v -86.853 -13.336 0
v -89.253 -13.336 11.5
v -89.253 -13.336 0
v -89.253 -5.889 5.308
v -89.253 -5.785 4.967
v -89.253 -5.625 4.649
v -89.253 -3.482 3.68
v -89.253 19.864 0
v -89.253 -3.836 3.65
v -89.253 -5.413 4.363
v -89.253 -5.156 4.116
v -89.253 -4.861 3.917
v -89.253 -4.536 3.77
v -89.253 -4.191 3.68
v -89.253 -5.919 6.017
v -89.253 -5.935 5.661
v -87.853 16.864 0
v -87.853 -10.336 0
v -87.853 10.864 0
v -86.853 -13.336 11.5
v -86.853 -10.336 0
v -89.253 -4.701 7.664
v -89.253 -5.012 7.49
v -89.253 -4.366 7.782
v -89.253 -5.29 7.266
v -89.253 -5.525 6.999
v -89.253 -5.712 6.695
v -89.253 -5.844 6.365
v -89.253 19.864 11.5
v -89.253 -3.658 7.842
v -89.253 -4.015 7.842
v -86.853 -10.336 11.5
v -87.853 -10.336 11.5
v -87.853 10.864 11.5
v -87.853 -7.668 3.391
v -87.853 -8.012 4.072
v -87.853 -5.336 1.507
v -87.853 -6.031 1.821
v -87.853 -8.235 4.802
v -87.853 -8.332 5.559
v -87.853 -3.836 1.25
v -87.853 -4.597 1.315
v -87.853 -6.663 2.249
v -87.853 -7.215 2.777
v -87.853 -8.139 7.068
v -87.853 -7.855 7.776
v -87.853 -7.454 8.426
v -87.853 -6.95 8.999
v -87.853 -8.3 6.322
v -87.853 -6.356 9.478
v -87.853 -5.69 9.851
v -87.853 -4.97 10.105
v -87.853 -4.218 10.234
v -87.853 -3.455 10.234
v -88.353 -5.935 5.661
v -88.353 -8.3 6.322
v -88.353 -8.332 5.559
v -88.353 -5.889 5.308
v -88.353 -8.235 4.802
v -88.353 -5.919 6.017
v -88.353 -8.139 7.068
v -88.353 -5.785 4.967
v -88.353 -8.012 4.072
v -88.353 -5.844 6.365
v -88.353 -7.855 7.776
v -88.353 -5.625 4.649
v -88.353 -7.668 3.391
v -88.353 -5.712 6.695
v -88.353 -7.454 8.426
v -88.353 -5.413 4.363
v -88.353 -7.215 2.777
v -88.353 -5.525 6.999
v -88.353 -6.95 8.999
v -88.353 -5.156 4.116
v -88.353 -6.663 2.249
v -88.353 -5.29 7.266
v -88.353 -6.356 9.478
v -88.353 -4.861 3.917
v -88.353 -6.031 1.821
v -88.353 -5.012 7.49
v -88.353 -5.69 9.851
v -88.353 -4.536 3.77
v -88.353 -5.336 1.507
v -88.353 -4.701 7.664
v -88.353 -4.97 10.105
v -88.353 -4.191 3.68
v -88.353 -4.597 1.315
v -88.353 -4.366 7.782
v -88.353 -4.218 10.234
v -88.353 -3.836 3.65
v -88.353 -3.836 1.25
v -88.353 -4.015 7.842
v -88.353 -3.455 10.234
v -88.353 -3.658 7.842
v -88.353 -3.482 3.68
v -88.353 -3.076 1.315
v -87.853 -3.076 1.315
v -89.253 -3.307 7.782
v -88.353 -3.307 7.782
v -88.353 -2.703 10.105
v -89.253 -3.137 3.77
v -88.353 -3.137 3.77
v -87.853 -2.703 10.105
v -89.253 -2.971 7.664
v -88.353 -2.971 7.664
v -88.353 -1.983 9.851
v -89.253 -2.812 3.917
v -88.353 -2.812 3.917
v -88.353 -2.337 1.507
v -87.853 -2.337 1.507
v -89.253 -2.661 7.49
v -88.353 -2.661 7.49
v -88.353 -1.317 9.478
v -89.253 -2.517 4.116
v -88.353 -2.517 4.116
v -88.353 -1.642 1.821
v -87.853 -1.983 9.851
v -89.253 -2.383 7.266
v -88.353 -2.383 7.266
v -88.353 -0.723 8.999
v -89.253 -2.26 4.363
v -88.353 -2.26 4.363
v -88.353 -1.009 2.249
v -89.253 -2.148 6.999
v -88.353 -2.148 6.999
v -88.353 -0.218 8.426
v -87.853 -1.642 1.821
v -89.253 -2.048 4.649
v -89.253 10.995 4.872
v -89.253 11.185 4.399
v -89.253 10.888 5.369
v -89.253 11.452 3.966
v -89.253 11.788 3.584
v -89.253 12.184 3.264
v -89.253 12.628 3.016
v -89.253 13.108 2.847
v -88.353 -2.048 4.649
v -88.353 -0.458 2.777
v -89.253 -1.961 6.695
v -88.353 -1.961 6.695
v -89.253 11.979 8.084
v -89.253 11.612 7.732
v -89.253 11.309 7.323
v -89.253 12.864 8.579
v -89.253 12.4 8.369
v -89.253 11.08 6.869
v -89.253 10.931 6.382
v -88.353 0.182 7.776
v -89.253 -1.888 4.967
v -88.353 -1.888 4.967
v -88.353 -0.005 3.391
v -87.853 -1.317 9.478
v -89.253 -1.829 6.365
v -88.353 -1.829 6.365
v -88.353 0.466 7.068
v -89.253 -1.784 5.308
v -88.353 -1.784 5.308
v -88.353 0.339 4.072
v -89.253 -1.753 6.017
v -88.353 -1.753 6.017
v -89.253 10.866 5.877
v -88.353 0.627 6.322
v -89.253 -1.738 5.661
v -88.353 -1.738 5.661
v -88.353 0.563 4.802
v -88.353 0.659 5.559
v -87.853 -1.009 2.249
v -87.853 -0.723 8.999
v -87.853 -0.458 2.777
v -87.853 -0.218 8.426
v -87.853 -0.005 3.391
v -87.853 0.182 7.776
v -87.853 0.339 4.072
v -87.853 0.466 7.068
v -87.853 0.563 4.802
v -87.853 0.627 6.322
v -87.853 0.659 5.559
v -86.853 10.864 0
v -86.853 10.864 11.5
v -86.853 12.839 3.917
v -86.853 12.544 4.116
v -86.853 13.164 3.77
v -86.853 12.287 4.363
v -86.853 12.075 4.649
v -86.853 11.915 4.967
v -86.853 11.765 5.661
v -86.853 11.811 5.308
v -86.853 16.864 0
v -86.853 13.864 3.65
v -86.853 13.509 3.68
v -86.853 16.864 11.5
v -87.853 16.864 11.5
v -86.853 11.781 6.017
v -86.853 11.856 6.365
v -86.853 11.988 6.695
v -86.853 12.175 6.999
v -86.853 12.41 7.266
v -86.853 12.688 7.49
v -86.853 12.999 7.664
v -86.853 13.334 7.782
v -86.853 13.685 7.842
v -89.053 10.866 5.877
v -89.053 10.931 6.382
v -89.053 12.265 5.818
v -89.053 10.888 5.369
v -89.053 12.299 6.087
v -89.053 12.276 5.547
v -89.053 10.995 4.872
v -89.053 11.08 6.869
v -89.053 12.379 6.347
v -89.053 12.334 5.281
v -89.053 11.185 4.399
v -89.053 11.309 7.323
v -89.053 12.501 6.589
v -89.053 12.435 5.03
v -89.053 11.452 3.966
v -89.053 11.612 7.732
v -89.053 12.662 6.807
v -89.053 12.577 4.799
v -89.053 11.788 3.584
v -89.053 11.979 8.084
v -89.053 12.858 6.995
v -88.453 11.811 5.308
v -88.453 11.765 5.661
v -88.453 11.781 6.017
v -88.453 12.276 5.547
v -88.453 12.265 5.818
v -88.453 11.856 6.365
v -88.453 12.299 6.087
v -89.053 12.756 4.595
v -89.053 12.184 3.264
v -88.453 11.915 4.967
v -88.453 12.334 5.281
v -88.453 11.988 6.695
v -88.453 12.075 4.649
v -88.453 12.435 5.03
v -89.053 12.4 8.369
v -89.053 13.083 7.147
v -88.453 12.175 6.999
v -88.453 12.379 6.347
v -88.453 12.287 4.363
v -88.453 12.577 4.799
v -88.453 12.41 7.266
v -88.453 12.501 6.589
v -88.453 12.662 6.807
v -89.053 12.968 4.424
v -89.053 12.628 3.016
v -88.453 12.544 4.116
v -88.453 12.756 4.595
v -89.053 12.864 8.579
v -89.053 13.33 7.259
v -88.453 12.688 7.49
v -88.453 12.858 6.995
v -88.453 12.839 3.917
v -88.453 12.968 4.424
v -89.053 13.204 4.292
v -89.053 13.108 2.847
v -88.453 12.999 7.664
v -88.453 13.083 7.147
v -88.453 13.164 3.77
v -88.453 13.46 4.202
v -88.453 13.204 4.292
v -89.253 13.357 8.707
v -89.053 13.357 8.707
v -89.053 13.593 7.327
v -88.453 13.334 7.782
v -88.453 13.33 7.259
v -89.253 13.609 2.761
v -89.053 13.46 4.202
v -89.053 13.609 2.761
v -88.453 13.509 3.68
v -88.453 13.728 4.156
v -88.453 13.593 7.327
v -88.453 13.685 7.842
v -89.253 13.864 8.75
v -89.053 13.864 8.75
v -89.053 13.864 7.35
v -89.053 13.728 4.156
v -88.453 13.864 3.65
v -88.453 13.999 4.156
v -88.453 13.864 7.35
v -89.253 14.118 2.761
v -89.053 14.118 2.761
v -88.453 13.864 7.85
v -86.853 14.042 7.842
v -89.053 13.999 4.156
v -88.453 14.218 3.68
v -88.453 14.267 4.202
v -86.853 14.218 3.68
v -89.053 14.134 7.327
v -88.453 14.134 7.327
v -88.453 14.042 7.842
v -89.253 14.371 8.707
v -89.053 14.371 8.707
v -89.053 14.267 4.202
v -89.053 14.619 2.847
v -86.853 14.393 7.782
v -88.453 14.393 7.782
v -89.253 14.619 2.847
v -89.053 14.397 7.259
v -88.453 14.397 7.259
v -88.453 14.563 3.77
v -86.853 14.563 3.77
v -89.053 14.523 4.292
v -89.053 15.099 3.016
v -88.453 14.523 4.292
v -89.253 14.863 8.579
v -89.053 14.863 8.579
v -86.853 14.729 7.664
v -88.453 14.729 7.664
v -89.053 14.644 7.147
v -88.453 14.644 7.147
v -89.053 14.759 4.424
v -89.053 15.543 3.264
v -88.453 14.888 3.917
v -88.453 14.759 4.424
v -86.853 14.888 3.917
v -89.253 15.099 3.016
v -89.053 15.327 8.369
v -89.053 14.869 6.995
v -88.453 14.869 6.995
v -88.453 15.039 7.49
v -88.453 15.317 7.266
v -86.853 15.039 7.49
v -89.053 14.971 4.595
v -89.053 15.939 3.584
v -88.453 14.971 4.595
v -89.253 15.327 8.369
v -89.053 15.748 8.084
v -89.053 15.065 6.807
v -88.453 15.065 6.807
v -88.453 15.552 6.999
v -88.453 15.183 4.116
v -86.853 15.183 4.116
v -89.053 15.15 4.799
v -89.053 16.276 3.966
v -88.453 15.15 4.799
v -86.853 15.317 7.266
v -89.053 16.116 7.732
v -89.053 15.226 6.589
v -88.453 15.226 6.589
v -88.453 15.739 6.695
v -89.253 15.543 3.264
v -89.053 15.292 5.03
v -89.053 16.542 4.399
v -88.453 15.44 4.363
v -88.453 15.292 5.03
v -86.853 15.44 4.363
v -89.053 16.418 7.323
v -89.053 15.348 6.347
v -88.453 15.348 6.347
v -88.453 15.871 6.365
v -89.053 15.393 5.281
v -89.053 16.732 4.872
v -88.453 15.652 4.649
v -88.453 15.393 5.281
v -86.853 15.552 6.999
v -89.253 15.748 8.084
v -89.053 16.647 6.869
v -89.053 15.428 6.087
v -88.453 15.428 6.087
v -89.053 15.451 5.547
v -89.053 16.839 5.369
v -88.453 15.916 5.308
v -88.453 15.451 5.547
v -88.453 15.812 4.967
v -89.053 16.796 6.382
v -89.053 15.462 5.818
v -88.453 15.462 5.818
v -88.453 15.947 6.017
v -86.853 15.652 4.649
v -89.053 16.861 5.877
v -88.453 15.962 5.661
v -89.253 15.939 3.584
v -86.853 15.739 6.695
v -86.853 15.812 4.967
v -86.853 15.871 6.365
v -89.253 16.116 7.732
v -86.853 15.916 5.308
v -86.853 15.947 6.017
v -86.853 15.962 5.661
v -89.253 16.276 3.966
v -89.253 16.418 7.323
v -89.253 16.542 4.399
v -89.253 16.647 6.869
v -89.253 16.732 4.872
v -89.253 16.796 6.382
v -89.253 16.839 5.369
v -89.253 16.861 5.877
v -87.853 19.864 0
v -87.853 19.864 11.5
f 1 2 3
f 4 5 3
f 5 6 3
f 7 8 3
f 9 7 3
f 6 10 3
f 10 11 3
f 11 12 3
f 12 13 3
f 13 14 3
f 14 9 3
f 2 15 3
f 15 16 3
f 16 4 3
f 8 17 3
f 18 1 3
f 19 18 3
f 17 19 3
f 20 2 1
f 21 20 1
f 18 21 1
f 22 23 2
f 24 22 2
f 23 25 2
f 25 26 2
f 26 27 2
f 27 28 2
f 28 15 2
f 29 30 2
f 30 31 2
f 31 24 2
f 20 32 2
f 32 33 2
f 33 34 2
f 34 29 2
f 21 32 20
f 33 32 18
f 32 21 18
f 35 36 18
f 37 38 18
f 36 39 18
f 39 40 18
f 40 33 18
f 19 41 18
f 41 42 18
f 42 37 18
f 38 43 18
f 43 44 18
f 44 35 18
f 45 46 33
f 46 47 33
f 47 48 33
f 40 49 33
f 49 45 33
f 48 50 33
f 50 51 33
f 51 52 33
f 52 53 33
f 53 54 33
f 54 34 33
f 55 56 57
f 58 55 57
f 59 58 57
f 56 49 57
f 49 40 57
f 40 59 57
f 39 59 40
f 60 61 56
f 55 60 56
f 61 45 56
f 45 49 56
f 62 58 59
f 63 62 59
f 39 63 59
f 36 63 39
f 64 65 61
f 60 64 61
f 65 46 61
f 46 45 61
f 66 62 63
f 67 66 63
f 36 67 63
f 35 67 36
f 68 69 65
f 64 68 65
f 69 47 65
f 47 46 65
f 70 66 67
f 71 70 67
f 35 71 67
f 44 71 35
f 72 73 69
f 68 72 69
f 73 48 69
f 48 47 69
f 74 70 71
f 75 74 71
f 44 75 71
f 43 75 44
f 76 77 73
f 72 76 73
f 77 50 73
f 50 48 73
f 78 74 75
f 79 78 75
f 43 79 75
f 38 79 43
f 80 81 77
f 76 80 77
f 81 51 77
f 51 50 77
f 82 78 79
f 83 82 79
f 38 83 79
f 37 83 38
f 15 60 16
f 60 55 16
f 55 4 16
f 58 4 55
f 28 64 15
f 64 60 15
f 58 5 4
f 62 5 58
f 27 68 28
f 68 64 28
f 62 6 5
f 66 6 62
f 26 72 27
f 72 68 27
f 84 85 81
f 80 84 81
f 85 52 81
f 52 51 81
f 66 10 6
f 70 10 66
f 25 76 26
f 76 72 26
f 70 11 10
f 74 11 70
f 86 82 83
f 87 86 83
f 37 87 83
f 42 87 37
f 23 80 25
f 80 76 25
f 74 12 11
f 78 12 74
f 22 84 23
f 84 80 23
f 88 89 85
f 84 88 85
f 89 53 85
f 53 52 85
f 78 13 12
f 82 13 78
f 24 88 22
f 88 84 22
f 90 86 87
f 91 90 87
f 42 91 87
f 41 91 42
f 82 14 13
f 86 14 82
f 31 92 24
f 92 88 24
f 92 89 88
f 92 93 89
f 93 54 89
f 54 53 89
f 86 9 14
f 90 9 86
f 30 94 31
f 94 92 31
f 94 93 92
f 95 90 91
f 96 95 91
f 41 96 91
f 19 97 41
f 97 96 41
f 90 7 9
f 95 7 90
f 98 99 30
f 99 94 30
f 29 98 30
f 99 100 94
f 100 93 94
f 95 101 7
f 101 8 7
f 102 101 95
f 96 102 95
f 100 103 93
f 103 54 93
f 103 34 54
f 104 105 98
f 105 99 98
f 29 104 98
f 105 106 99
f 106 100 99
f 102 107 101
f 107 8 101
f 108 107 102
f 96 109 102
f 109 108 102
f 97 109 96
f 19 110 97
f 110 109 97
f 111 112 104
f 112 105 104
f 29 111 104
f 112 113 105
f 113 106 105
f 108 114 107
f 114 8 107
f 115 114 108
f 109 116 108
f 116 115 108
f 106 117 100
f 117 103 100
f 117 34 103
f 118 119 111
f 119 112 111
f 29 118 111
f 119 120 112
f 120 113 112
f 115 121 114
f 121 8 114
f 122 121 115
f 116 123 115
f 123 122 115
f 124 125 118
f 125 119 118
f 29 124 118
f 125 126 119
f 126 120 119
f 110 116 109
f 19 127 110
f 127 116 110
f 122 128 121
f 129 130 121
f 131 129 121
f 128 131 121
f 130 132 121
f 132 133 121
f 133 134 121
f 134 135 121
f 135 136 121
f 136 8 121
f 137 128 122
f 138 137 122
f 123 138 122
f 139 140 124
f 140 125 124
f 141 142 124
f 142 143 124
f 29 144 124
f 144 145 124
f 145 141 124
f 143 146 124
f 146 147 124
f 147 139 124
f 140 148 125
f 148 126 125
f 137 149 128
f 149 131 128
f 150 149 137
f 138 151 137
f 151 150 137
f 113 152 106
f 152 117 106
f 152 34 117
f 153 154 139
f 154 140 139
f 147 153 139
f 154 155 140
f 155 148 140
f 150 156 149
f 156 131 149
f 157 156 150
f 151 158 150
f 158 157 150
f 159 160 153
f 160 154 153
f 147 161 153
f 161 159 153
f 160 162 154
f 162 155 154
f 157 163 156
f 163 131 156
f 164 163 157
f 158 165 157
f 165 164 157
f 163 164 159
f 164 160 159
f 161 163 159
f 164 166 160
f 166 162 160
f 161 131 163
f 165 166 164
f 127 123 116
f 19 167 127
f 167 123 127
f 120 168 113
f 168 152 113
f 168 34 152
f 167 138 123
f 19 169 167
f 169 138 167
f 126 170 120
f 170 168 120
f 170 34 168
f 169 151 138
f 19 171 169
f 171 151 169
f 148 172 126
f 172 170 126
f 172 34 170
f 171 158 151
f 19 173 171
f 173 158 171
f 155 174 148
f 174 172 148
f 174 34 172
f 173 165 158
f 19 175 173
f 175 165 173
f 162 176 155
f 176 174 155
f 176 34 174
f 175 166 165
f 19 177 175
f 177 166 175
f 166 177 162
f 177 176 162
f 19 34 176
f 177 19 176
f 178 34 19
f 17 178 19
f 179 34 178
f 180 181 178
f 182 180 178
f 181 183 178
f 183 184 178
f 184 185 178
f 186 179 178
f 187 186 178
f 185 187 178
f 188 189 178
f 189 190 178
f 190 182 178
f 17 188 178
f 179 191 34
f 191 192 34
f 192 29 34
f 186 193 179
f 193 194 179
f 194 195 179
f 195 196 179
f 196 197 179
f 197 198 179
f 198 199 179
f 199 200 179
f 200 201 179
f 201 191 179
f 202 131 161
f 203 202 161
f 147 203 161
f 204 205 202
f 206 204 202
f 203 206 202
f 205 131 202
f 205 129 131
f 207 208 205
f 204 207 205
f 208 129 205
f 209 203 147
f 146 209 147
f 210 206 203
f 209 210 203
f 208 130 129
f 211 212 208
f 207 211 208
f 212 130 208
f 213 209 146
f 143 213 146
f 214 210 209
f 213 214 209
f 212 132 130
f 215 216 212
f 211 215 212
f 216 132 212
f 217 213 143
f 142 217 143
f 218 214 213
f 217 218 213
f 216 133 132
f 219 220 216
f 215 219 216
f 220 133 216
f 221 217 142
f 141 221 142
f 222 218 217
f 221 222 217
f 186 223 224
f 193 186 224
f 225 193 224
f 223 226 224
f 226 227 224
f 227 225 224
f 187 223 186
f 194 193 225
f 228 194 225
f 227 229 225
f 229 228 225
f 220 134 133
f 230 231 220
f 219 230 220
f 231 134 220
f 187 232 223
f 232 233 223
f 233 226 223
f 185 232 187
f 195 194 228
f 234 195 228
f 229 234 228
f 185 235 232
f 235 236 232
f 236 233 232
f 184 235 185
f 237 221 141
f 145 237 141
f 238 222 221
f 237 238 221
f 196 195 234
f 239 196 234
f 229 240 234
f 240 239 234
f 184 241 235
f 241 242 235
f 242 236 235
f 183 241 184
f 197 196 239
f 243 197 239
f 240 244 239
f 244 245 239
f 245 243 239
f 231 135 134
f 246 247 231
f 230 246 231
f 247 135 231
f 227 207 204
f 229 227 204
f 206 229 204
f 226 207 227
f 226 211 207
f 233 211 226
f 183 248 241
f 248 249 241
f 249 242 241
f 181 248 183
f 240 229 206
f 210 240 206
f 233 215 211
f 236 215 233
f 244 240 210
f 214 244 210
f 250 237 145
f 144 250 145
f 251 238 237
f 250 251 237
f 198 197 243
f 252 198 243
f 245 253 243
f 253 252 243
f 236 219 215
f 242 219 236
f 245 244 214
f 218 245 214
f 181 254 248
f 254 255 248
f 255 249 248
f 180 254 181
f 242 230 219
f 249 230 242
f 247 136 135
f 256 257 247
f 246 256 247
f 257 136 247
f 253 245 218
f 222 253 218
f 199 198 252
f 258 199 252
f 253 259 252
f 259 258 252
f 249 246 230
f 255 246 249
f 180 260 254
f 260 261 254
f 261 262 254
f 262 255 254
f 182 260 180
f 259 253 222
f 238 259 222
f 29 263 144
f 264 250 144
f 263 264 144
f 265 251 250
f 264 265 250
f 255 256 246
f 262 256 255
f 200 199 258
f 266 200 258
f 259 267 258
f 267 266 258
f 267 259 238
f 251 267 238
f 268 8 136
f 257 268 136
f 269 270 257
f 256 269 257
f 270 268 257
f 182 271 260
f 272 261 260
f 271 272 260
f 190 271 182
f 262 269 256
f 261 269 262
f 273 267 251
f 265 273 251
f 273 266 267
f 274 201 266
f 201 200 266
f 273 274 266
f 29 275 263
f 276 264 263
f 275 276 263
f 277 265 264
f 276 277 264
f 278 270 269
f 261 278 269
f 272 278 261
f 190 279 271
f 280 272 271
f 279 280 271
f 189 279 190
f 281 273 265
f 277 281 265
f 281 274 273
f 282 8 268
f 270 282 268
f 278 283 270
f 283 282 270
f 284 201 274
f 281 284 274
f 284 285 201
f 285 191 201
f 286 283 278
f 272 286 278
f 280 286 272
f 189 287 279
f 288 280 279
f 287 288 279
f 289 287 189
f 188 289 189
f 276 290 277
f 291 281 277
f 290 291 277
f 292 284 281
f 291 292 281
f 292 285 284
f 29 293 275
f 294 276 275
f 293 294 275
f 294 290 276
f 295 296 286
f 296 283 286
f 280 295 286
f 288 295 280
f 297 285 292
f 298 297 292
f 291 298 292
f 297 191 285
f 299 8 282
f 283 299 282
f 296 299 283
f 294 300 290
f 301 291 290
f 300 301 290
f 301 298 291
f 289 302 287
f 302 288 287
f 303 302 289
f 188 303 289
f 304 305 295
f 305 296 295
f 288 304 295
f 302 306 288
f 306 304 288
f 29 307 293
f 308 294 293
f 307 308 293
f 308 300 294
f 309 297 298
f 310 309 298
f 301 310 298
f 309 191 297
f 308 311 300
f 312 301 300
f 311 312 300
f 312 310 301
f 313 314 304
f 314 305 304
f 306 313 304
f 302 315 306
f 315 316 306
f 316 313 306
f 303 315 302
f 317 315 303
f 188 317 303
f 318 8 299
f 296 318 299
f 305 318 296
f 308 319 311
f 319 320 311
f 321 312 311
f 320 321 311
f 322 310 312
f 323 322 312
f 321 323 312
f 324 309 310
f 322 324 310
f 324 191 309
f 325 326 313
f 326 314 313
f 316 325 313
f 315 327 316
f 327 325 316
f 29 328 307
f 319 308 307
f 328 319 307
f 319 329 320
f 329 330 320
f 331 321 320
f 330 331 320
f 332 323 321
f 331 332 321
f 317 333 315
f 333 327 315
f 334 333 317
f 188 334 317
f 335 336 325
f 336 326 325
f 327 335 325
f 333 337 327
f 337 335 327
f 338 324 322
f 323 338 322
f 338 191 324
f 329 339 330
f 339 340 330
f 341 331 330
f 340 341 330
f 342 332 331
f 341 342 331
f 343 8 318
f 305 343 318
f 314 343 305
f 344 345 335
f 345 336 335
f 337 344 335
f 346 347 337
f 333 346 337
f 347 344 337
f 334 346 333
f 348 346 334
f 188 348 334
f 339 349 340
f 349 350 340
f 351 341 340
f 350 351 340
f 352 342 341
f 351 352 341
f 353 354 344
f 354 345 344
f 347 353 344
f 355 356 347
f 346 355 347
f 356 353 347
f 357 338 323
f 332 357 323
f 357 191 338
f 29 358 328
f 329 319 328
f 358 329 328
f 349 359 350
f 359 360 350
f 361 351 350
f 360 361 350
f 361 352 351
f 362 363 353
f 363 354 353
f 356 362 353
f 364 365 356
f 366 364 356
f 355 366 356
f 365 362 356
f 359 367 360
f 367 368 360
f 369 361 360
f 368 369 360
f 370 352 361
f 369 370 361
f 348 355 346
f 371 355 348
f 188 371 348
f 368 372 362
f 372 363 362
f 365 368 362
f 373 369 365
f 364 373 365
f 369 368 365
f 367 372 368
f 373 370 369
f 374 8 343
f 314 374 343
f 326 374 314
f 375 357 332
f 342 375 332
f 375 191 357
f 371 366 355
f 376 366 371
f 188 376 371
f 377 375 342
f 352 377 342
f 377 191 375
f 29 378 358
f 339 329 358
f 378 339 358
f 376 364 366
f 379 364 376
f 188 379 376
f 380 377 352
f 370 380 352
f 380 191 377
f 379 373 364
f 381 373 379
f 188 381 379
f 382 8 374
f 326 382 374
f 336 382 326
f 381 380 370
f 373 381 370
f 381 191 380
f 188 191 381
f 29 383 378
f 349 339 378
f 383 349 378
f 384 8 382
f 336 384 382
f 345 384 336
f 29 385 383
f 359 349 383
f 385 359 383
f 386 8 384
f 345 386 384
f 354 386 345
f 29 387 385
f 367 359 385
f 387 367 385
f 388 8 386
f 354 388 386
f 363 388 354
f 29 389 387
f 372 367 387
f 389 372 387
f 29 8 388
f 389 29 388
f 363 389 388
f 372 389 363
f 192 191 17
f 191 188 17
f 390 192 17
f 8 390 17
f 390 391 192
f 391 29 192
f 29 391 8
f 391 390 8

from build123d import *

# Parameters (mm, degrees)
SALIENTE_EXTRUIR1_DEPTH = 11.5
CORTAR_EXTRUIR1_START   = -2.4
CROQUIS2_R              = 2.1
CORTAR_EXTRUIR1_DEPTH   = 2.4
CROQUIS3_R              = 4.5
CORTAR_EXTRUIR2_DEPTH   = 0.5
CROQUIS4_R              = 3
CORTAR_EXTRUIR3_DEPTH   = 0.2
CROQUIS5_R              = 2.1
CROQUIS5_R_2            = 1.6
SALIENTE_EXTRUIR2_DEPTH = 0.6


with BuildPart() as part:
    # Croquis1 → Saliente-Extruir1 (new body)
    with BuildSketch(Plane.XY):
        Polygon((-89.253382482, -13.336480186), (-89.253382482, 19.863519814), (-87.853382482, 19.863519814), (-87.853382482, 16.863519814), (-86.853382482, 16.863519814), (-86.853382482, 10.863519814), (-87.853382482, 10.863519814), (-87.853382482, -10.336480186), (-86.853382482, -10.336480186), (-86.853382482, -13.336480186), align=None)
    extrude(amount=SALIENTE_EXTRUIR1_DEPTH)

    # Croquis2 → Cortar-Extruir1 (cut)
    with BuildSketch(Plane(origin=(-86.853382482, 0, 0), x_dir=(0, 0, -1), z_dir=(1, 0, 0)).offset(CORTAR_EXTRUIR1_START)):
        with Locations((-5.75, 13.863519814)):
            Circle(CROQUIS2_R)
        with Locations((-5.75, -3.836480186)):
            Circle(CROQUIS2_R)
    extrude(amount=CORTAR_EXTRUIR1_DEPTH, mode=Mode.SUBTRACT)

    # Croquis3 → Cortar-Extruir2 (cut)
    with BuildSketch(Plane(origin=(-87.853382482, 0, 0), x_dir=(0, 0, -1), z_dir=(1, 0, 0))):
        with Locations((-5.75, -3.836480186)):
            Circle(CROQUIS3_R)
    extrude(amount=-CORTAR_EXTRUIR2_DEPTH, mode=Mode.SUBTRACT)

    # Croquis4 → Cortar-Extruir3 (cut)
    with BuildSketch(Plane.ZY.offset(89.253382482)):
        with Locations((5.75, 13.863519814)):
            Circle(CROQUIS4_R)
    extrude(amount=-CORTAR_EXTRUIR3_DEPTH, mode=Mode.SUBTRACT)

    # Croquis5 → Saliente-Extruir2 (add)
    with BuildSketch(Plane.ZY.offset(89.053382482)):
        with Locations((5.75, 13.863519814)):
            Circle(CROQUIS5_R)
        with Locations((5.75, 13.863519814)):
            Circle(CROQUIS5_R_2, mode=Mode.SUBTRACT)
    extrude(amount=-SALIENTE_EXTRUIR2_DEPTH)


solid = part.part
